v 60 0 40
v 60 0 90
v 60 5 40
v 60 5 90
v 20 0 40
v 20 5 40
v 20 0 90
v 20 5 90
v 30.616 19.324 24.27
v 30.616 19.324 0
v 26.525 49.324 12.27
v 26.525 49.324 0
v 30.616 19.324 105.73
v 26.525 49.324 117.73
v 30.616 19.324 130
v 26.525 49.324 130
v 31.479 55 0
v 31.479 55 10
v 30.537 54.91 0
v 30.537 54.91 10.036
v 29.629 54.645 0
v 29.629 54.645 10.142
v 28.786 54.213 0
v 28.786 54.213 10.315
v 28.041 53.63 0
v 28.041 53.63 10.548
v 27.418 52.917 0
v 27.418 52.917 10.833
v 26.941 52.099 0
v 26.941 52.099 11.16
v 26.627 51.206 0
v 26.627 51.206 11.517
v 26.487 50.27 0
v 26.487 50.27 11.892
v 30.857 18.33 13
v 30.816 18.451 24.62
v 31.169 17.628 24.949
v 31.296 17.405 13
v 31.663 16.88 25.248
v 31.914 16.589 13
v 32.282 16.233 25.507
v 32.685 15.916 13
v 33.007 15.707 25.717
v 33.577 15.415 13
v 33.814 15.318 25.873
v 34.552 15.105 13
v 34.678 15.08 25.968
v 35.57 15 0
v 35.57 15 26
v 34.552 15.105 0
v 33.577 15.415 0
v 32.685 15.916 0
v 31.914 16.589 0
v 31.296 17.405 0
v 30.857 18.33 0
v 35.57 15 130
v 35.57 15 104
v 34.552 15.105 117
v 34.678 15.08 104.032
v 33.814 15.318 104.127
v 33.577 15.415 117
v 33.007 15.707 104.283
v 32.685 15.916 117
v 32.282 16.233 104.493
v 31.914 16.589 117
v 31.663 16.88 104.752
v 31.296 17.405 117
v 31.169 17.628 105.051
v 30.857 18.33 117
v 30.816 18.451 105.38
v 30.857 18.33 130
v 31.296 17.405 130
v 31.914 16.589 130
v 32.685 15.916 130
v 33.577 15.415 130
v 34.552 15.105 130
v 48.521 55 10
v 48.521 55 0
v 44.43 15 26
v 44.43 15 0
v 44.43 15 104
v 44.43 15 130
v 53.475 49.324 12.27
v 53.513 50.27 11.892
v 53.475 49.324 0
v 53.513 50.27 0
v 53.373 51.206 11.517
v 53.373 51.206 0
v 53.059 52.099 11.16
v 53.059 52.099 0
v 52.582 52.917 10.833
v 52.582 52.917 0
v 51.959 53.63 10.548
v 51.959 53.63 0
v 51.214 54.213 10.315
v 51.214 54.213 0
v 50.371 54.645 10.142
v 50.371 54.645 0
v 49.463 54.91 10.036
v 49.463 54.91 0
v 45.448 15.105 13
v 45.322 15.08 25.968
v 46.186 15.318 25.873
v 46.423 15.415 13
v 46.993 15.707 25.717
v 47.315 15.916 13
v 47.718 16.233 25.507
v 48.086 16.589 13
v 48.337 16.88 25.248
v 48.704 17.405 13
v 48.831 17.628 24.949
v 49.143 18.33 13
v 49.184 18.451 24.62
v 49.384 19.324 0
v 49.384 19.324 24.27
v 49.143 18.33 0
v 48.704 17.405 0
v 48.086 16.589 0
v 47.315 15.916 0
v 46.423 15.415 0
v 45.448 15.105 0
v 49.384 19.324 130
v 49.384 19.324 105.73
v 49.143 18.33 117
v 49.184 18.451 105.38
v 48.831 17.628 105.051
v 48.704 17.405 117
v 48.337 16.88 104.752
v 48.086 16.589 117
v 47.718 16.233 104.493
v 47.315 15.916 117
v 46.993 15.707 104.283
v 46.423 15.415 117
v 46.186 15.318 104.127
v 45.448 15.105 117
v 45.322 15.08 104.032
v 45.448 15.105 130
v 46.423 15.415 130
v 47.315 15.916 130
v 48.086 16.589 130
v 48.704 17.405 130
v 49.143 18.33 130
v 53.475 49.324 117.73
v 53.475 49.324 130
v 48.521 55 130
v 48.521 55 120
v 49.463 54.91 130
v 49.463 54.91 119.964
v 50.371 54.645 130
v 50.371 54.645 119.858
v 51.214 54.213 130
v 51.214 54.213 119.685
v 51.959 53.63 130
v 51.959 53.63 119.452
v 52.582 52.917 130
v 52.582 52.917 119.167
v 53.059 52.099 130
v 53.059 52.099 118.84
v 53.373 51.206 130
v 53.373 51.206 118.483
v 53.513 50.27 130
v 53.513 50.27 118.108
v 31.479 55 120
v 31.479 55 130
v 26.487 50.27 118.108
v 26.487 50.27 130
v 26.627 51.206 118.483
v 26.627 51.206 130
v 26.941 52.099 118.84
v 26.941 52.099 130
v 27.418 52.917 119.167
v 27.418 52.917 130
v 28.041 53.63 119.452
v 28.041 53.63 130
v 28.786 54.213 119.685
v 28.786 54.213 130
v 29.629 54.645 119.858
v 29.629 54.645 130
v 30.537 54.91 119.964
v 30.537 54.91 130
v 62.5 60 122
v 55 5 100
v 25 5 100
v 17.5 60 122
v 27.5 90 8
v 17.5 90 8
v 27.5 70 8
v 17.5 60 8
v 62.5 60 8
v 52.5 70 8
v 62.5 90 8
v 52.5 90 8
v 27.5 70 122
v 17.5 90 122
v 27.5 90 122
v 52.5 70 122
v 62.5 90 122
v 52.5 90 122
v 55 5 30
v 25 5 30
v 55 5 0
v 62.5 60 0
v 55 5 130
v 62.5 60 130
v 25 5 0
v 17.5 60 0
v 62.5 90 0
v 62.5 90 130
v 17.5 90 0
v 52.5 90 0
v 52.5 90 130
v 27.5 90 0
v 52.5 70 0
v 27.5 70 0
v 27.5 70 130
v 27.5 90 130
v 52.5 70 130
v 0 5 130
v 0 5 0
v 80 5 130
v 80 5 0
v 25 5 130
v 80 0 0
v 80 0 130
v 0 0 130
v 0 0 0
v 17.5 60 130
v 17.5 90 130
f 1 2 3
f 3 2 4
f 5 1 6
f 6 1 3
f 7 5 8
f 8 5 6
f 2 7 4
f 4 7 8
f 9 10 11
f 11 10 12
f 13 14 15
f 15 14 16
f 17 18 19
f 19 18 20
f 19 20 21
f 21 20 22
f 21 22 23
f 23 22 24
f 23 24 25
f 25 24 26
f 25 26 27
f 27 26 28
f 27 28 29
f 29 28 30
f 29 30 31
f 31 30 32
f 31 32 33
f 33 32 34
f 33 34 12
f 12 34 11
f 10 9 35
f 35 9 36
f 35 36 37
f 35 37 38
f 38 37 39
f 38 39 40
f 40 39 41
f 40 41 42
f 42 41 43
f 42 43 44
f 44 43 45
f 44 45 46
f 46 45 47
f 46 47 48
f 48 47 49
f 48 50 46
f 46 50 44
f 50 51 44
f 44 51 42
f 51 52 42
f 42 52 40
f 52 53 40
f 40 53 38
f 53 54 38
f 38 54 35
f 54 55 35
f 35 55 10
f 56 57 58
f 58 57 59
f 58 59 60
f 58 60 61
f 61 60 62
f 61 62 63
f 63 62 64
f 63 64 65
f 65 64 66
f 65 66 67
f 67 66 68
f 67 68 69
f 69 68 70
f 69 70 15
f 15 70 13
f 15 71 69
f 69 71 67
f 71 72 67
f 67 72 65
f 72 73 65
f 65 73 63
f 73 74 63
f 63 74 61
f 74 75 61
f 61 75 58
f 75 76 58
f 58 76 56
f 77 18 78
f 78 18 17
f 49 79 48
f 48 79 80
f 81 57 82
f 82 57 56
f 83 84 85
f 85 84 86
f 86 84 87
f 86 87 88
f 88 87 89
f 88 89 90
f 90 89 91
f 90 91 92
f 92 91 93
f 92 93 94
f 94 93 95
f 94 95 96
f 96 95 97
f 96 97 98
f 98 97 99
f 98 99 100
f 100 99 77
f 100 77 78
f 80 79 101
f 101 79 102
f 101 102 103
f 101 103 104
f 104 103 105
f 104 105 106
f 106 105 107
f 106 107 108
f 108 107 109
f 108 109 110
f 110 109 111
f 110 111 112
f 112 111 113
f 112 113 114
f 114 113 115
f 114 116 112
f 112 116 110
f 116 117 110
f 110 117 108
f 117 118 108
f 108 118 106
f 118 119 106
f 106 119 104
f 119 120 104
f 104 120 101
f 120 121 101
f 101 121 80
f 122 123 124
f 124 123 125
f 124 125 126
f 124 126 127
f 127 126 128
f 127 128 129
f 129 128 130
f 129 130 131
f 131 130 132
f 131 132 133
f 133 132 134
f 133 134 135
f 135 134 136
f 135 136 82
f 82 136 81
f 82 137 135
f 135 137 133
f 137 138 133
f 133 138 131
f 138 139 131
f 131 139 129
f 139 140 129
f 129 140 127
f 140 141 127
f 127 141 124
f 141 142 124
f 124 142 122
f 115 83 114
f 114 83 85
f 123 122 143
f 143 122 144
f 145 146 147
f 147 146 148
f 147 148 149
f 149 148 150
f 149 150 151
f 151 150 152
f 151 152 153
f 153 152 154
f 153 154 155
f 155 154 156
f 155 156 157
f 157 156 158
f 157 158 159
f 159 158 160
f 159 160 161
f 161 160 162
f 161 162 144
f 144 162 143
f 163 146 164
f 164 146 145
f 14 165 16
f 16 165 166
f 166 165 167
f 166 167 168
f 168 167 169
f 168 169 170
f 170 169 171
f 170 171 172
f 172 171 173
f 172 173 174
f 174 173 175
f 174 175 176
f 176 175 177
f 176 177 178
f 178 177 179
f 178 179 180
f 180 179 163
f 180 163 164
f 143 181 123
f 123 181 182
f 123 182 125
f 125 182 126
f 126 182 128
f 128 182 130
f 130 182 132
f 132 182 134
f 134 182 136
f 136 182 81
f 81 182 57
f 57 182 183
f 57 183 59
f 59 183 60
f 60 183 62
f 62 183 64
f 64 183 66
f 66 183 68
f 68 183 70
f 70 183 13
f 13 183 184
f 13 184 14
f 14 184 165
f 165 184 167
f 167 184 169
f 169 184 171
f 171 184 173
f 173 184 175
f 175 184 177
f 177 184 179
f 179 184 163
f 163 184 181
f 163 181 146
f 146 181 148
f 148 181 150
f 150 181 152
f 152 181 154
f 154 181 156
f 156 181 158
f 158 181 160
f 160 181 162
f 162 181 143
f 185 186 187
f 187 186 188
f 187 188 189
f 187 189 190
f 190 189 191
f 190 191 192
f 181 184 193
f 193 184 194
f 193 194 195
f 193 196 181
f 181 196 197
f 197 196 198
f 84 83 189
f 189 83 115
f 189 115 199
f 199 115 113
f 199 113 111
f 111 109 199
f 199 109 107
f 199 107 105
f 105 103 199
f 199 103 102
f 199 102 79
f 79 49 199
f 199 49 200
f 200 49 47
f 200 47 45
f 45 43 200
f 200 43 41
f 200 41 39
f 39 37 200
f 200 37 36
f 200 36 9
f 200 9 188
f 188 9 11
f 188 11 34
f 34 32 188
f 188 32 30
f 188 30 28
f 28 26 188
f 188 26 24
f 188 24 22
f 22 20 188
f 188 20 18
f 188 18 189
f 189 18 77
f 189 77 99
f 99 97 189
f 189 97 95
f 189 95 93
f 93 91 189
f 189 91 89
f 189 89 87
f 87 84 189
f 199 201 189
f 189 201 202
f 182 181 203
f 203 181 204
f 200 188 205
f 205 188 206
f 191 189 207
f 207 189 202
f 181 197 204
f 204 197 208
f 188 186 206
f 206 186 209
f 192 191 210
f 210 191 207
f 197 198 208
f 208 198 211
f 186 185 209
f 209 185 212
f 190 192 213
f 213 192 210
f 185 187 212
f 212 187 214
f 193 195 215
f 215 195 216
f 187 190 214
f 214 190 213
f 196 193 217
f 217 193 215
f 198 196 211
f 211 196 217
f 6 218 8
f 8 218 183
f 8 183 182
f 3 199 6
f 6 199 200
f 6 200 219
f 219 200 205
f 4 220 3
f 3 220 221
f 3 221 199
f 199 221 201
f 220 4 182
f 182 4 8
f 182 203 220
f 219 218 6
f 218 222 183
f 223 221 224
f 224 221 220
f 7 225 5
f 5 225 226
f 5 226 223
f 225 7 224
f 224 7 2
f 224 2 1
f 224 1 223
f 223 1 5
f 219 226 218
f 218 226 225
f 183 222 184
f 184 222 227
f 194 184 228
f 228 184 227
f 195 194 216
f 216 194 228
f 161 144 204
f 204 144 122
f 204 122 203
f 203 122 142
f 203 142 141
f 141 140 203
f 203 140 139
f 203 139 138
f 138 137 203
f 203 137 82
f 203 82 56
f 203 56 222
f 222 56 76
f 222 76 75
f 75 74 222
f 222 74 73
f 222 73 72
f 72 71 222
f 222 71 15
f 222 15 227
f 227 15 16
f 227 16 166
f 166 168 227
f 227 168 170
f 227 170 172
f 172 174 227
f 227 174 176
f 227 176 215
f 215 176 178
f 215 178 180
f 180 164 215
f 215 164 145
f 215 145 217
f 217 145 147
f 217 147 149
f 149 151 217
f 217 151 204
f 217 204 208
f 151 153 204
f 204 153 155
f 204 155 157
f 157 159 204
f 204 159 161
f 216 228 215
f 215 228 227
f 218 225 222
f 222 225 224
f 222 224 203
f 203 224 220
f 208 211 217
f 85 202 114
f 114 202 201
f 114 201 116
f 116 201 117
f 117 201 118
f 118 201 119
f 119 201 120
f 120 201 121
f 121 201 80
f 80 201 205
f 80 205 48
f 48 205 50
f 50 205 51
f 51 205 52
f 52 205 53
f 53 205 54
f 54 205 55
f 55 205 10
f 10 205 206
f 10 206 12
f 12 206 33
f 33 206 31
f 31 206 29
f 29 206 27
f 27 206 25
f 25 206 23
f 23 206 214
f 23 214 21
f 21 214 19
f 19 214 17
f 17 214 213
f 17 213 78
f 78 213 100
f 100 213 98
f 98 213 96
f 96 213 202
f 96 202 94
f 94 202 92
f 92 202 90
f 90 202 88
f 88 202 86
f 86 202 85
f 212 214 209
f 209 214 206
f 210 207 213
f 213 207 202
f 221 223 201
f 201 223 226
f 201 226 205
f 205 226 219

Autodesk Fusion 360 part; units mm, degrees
sketch "Esquisse1" plane through (0, 0, 0) normal (0, 0, 1) x (1, 0, 0)
  line L0 (27.5, 70) -> (52.5, 70)
  line L1 (52.5, 70) -> (52.5, 90)
  line L2 (27.5, 70) -> (27.5, 90)
  line L3 (27.5, 90) -> (17.5, 90)
  line L4 (52.5, 90) -> (62.5, 90)
  line L5 (62.5, 90) -> (62.5, 60)
  line L6 (17.5, 90) -> (17.5, 60)
  line L7 (17.5, 60) -> (25, 5)
  line L8 (25, 5) -> (0, 5)
  line L9 (0, 5) -> (0, 0)
  line L10 (0, 0) -> (80, 0)
  line L11 (80, 0) -> (80, 5)
  line L12 (80, 5) -> (55, 5)
  line L13 (55, 5) -> (62.5, 60)
  dimension "d1" = 70
  dimension "d2" = 25
  dimension "d3" = 20
  dimension "d4" = 10
  dimension "d5" = 30
  dimension "d8" = 5
  dimension "d10" = 10
  dimension "d27" = 80
  dimension "d28" = 45
  dimension "d29" = 17.5
  dimension "d30" = 30
extrude "Extrusion1" add sketch "Esquisse1" along normal blind 130
sketch "Esquisse2" plane through (62.5, 0, 0) normal (1, 0, 0) x (0, 0, -1)
  line L0 (0, 60) -> (0, 90)
  line L1 (0, 90) -> (-130, 90)
  line L2 (-130, 90) -> (-130, 60)
  line L3 (-130, 60) -> (0, 60)
  line L4 (-65, 90) -> (-65, -26) construction
  line L5 (-122, 90) -> (-122, 60)
  line L6 (-122, 60) -> (-100, 5)
  line L7 (-8, 90) -> (-8, 60)
  line L8 (-8, 60) -> (-30, 5)
  line L9 (-100, 5) -> (-30, 5)
  point P0 (-130, 5)
  point P1 (0, 5)
  dimension "d13" = 8
  dimension "d14" = 30
  dimension "d15" = 30
  dimension "d16" = 8
extrude "Extrusion2" cut sketch "Esquisse2" against normal blind 60 contours L3 L6 L8 L9 | L1 L3 L5 L7
sketch "Esquisse3" plane through (0, 0, 130) normal (0, 0, 1) x (1, 0, 0)
  line L0 (27.5, 70) -> (27.5, 90)
  line L1 (27.5, 90) -> (17.5, 90)
  line L2 (17.5, 90) -> (17.5, 60)
  line L3 (17.5, 60) -> (25, 5)
  line L4 (25, 5) -> (0, 5)
  line L5 (0, 5) -> (0, 0)
  line L6 (0, 0) -> (80, 0)
  line L7 (80, 0) -> (80, 5)
  line L8 (80, 5) -> (55, 5)
  line L9 (55, 5) -> (62.5, 60)
  line L10 (62.5, 60) -> (62.5, 90)
  line L11 (62.5, 90) -> (52.5, 90)
  line L12 (52.5, 90) -> (52.5, 70)
  line L13 (52.5, 70) -> (27.5, 70)
  line L14 (26.5252, 49.3244) -> (30.6161, 19.3244)
  line L15 (35.5702, 15) -> (44.4298, 15)
  line L16 (49.3839, 19.3244) -> (53.4748, 49.3244)
  line L17 (48.5207, 55) -> (31.4793, 55)
  arc A0 (31.4793, 55) -> (26.5252, 49.3244) centre (31.4793, 50) ccw
  arc A1 (53.4748, 49.3244) -> (48.5207, 55) centre (48.5207, 50) ccw
  arc A2 (30.6161, 19.3244) -> (35.5702, 15) centre (35.5702, 20) ccw
  arc A3 (44.4298, 15) -> (49.3839, 19.3244) centre (44.4298, 20) ccw
  dimension "d19" = 15
  dimension "d20" = 15
  dimension "d21" = 7.5
  dimension "d22" = 7.5
  dimension "d25" = 5
extrude "Extrusion3" cut sketch "Esquisse3" against normal blind 150 contours L14 L15 L16 L17 A0 A1 A2 A3
sketch "Esquisse4" plane through (0, 5, 0) normal (0, 1, 0) x (-1, 0, 0)
  line L0 (-55, 100) -> (-55, 130)
  line L1 (-55, 130) -> (-80, 130)
  line L2 (-80, 130) -> (-80, 0)
  line L3 (-80, 0) -> (-55, 0)
  line L4 (-55, 0) -> (-55, 30)
  line L5 (-55, 30) -> (-25, 30)
  line L6 (-25, 30) -> (-25, 0)
  line L7 (-25, 0) -> (0, 0)
  line L8 (0, 0) -> (0, 130)
  line L9 (0, 130) -> (-25, 130)
  line L10 (-25, 130) -> (-25, 100)
  line L11 (-25, 100) -> (-55, 100)
  line L12 (-60, 90) -> (-20, 90)
  line L13 (-20, 90) -> (-20, 40)
  line L14 (-20, 40) -> (-60, 40)
  line L15 (-60, 40) -> (-60, 90)
extrude "Extrusion4" cut sketch "Esquisse4" against normal blind 20 contours L12 L13 L14 L15
equation "d15 = d14"
equation "d16 = d13"
equation "d29 = ( d27 - d28 ) / 2"
